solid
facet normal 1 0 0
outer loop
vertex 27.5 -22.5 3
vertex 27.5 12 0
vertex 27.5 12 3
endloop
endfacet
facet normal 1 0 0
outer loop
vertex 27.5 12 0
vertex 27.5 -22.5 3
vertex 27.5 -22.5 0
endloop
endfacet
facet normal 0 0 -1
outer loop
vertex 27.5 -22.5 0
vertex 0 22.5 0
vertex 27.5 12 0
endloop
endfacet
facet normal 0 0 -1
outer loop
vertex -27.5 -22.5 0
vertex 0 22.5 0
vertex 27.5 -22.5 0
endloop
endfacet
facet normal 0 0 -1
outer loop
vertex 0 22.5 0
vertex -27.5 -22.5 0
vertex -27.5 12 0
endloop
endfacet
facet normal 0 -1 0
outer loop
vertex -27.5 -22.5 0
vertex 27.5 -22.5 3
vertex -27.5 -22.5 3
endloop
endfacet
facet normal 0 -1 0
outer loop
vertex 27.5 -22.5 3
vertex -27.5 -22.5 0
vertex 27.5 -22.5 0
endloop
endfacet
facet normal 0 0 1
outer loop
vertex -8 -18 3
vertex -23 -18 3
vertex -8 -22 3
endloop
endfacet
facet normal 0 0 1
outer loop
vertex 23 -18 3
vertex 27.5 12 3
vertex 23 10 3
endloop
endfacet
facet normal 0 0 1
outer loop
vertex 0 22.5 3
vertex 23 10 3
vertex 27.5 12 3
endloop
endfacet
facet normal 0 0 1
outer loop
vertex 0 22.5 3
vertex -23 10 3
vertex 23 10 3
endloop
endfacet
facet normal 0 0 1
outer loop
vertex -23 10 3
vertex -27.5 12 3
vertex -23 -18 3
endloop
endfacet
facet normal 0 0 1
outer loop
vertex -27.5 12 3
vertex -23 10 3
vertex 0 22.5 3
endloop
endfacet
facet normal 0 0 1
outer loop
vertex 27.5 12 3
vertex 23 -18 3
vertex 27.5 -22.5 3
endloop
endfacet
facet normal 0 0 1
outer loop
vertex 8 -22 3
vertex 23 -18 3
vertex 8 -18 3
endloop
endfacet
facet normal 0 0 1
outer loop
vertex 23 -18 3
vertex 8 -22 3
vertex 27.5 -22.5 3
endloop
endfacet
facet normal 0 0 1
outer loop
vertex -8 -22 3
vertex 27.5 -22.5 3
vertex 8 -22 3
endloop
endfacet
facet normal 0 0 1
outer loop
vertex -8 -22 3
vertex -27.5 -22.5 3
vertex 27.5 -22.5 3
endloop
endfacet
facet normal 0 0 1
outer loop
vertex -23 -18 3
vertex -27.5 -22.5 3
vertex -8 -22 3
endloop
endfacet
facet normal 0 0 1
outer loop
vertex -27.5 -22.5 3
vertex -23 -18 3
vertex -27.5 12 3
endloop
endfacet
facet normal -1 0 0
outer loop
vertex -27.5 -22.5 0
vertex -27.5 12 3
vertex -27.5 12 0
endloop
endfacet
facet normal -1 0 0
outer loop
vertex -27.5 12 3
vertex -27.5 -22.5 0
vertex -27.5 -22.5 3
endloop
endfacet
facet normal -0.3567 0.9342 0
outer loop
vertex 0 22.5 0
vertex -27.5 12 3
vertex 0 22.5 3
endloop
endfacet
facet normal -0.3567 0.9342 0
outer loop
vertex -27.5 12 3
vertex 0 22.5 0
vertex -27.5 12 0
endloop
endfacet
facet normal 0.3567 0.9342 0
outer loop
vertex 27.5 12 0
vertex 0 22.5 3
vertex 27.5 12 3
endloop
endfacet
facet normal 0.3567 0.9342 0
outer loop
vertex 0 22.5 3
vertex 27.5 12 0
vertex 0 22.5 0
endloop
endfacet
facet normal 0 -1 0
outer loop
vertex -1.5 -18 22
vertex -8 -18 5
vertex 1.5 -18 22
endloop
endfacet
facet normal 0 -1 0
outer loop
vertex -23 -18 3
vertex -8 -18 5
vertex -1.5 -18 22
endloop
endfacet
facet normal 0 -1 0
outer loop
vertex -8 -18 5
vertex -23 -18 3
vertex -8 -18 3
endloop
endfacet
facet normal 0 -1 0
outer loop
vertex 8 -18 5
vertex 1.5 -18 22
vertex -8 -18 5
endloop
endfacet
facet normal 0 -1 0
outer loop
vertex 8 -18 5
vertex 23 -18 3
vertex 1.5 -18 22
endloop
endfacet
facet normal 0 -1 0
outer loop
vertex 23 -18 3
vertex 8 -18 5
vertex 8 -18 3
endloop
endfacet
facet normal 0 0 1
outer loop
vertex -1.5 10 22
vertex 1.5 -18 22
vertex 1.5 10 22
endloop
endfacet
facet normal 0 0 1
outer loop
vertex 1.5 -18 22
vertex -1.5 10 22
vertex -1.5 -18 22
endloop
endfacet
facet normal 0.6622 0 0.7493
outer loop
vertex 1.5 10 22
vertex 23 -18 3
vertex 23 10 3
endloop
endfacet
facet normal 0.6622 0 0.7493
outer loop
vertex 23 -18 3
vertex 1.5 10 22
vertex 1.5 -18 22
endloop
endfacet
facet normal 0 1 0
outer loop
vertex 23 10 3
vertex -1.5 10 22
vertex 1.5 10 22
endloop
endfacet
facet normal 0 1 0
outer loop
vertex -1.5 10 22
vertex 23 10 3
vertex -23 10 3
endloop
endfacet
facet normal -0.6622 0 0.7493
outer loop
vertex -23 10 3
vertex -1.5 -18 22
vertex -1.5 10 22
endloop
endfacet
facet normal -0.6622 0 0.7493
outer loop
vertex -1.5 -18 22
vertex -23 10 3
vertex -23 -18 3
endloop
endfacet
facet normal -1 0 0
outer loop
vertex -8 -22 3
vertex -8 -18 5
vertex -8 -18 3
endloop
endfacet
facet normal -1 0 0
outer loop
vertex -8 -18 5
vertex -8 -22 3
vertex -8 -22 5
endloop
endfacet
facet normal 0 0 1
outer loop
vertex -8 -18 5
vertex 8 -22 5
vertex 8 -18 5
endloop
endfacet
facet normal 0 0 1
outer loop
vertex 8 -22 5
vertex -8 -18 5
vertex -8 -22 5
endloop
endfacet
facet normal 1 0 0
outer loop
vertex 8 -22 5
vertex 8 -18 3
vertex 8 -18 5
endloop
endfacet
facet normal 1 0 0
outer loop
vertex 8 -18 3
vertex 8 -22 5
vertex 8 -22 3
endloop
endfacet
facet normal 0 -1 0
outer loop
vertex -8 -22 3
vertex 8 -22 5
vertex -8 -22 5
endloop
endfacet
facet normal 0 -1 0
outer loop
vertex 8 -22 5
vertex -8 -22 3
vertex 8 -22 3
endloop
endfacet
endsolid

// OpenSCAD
// Tagless sleeping shelter: 55 x 45 x 22 mm limit.
union() {
  linear_extrude(3) polygon([[-27.5,-22.5],[27.5,-22.5],[27.5,12],[0,22.5],[-27.5,12]]);
  // Solid pitched tent roof rising from the bed-supported base.
  hull() {
    translate([-23,-18,2]) cube([46,28,1]);
    translate([-1.5,-18,21]) cube([3,28,1]);
  }
  translate([-8,-22,0]) cube([16,6,5]);
}
